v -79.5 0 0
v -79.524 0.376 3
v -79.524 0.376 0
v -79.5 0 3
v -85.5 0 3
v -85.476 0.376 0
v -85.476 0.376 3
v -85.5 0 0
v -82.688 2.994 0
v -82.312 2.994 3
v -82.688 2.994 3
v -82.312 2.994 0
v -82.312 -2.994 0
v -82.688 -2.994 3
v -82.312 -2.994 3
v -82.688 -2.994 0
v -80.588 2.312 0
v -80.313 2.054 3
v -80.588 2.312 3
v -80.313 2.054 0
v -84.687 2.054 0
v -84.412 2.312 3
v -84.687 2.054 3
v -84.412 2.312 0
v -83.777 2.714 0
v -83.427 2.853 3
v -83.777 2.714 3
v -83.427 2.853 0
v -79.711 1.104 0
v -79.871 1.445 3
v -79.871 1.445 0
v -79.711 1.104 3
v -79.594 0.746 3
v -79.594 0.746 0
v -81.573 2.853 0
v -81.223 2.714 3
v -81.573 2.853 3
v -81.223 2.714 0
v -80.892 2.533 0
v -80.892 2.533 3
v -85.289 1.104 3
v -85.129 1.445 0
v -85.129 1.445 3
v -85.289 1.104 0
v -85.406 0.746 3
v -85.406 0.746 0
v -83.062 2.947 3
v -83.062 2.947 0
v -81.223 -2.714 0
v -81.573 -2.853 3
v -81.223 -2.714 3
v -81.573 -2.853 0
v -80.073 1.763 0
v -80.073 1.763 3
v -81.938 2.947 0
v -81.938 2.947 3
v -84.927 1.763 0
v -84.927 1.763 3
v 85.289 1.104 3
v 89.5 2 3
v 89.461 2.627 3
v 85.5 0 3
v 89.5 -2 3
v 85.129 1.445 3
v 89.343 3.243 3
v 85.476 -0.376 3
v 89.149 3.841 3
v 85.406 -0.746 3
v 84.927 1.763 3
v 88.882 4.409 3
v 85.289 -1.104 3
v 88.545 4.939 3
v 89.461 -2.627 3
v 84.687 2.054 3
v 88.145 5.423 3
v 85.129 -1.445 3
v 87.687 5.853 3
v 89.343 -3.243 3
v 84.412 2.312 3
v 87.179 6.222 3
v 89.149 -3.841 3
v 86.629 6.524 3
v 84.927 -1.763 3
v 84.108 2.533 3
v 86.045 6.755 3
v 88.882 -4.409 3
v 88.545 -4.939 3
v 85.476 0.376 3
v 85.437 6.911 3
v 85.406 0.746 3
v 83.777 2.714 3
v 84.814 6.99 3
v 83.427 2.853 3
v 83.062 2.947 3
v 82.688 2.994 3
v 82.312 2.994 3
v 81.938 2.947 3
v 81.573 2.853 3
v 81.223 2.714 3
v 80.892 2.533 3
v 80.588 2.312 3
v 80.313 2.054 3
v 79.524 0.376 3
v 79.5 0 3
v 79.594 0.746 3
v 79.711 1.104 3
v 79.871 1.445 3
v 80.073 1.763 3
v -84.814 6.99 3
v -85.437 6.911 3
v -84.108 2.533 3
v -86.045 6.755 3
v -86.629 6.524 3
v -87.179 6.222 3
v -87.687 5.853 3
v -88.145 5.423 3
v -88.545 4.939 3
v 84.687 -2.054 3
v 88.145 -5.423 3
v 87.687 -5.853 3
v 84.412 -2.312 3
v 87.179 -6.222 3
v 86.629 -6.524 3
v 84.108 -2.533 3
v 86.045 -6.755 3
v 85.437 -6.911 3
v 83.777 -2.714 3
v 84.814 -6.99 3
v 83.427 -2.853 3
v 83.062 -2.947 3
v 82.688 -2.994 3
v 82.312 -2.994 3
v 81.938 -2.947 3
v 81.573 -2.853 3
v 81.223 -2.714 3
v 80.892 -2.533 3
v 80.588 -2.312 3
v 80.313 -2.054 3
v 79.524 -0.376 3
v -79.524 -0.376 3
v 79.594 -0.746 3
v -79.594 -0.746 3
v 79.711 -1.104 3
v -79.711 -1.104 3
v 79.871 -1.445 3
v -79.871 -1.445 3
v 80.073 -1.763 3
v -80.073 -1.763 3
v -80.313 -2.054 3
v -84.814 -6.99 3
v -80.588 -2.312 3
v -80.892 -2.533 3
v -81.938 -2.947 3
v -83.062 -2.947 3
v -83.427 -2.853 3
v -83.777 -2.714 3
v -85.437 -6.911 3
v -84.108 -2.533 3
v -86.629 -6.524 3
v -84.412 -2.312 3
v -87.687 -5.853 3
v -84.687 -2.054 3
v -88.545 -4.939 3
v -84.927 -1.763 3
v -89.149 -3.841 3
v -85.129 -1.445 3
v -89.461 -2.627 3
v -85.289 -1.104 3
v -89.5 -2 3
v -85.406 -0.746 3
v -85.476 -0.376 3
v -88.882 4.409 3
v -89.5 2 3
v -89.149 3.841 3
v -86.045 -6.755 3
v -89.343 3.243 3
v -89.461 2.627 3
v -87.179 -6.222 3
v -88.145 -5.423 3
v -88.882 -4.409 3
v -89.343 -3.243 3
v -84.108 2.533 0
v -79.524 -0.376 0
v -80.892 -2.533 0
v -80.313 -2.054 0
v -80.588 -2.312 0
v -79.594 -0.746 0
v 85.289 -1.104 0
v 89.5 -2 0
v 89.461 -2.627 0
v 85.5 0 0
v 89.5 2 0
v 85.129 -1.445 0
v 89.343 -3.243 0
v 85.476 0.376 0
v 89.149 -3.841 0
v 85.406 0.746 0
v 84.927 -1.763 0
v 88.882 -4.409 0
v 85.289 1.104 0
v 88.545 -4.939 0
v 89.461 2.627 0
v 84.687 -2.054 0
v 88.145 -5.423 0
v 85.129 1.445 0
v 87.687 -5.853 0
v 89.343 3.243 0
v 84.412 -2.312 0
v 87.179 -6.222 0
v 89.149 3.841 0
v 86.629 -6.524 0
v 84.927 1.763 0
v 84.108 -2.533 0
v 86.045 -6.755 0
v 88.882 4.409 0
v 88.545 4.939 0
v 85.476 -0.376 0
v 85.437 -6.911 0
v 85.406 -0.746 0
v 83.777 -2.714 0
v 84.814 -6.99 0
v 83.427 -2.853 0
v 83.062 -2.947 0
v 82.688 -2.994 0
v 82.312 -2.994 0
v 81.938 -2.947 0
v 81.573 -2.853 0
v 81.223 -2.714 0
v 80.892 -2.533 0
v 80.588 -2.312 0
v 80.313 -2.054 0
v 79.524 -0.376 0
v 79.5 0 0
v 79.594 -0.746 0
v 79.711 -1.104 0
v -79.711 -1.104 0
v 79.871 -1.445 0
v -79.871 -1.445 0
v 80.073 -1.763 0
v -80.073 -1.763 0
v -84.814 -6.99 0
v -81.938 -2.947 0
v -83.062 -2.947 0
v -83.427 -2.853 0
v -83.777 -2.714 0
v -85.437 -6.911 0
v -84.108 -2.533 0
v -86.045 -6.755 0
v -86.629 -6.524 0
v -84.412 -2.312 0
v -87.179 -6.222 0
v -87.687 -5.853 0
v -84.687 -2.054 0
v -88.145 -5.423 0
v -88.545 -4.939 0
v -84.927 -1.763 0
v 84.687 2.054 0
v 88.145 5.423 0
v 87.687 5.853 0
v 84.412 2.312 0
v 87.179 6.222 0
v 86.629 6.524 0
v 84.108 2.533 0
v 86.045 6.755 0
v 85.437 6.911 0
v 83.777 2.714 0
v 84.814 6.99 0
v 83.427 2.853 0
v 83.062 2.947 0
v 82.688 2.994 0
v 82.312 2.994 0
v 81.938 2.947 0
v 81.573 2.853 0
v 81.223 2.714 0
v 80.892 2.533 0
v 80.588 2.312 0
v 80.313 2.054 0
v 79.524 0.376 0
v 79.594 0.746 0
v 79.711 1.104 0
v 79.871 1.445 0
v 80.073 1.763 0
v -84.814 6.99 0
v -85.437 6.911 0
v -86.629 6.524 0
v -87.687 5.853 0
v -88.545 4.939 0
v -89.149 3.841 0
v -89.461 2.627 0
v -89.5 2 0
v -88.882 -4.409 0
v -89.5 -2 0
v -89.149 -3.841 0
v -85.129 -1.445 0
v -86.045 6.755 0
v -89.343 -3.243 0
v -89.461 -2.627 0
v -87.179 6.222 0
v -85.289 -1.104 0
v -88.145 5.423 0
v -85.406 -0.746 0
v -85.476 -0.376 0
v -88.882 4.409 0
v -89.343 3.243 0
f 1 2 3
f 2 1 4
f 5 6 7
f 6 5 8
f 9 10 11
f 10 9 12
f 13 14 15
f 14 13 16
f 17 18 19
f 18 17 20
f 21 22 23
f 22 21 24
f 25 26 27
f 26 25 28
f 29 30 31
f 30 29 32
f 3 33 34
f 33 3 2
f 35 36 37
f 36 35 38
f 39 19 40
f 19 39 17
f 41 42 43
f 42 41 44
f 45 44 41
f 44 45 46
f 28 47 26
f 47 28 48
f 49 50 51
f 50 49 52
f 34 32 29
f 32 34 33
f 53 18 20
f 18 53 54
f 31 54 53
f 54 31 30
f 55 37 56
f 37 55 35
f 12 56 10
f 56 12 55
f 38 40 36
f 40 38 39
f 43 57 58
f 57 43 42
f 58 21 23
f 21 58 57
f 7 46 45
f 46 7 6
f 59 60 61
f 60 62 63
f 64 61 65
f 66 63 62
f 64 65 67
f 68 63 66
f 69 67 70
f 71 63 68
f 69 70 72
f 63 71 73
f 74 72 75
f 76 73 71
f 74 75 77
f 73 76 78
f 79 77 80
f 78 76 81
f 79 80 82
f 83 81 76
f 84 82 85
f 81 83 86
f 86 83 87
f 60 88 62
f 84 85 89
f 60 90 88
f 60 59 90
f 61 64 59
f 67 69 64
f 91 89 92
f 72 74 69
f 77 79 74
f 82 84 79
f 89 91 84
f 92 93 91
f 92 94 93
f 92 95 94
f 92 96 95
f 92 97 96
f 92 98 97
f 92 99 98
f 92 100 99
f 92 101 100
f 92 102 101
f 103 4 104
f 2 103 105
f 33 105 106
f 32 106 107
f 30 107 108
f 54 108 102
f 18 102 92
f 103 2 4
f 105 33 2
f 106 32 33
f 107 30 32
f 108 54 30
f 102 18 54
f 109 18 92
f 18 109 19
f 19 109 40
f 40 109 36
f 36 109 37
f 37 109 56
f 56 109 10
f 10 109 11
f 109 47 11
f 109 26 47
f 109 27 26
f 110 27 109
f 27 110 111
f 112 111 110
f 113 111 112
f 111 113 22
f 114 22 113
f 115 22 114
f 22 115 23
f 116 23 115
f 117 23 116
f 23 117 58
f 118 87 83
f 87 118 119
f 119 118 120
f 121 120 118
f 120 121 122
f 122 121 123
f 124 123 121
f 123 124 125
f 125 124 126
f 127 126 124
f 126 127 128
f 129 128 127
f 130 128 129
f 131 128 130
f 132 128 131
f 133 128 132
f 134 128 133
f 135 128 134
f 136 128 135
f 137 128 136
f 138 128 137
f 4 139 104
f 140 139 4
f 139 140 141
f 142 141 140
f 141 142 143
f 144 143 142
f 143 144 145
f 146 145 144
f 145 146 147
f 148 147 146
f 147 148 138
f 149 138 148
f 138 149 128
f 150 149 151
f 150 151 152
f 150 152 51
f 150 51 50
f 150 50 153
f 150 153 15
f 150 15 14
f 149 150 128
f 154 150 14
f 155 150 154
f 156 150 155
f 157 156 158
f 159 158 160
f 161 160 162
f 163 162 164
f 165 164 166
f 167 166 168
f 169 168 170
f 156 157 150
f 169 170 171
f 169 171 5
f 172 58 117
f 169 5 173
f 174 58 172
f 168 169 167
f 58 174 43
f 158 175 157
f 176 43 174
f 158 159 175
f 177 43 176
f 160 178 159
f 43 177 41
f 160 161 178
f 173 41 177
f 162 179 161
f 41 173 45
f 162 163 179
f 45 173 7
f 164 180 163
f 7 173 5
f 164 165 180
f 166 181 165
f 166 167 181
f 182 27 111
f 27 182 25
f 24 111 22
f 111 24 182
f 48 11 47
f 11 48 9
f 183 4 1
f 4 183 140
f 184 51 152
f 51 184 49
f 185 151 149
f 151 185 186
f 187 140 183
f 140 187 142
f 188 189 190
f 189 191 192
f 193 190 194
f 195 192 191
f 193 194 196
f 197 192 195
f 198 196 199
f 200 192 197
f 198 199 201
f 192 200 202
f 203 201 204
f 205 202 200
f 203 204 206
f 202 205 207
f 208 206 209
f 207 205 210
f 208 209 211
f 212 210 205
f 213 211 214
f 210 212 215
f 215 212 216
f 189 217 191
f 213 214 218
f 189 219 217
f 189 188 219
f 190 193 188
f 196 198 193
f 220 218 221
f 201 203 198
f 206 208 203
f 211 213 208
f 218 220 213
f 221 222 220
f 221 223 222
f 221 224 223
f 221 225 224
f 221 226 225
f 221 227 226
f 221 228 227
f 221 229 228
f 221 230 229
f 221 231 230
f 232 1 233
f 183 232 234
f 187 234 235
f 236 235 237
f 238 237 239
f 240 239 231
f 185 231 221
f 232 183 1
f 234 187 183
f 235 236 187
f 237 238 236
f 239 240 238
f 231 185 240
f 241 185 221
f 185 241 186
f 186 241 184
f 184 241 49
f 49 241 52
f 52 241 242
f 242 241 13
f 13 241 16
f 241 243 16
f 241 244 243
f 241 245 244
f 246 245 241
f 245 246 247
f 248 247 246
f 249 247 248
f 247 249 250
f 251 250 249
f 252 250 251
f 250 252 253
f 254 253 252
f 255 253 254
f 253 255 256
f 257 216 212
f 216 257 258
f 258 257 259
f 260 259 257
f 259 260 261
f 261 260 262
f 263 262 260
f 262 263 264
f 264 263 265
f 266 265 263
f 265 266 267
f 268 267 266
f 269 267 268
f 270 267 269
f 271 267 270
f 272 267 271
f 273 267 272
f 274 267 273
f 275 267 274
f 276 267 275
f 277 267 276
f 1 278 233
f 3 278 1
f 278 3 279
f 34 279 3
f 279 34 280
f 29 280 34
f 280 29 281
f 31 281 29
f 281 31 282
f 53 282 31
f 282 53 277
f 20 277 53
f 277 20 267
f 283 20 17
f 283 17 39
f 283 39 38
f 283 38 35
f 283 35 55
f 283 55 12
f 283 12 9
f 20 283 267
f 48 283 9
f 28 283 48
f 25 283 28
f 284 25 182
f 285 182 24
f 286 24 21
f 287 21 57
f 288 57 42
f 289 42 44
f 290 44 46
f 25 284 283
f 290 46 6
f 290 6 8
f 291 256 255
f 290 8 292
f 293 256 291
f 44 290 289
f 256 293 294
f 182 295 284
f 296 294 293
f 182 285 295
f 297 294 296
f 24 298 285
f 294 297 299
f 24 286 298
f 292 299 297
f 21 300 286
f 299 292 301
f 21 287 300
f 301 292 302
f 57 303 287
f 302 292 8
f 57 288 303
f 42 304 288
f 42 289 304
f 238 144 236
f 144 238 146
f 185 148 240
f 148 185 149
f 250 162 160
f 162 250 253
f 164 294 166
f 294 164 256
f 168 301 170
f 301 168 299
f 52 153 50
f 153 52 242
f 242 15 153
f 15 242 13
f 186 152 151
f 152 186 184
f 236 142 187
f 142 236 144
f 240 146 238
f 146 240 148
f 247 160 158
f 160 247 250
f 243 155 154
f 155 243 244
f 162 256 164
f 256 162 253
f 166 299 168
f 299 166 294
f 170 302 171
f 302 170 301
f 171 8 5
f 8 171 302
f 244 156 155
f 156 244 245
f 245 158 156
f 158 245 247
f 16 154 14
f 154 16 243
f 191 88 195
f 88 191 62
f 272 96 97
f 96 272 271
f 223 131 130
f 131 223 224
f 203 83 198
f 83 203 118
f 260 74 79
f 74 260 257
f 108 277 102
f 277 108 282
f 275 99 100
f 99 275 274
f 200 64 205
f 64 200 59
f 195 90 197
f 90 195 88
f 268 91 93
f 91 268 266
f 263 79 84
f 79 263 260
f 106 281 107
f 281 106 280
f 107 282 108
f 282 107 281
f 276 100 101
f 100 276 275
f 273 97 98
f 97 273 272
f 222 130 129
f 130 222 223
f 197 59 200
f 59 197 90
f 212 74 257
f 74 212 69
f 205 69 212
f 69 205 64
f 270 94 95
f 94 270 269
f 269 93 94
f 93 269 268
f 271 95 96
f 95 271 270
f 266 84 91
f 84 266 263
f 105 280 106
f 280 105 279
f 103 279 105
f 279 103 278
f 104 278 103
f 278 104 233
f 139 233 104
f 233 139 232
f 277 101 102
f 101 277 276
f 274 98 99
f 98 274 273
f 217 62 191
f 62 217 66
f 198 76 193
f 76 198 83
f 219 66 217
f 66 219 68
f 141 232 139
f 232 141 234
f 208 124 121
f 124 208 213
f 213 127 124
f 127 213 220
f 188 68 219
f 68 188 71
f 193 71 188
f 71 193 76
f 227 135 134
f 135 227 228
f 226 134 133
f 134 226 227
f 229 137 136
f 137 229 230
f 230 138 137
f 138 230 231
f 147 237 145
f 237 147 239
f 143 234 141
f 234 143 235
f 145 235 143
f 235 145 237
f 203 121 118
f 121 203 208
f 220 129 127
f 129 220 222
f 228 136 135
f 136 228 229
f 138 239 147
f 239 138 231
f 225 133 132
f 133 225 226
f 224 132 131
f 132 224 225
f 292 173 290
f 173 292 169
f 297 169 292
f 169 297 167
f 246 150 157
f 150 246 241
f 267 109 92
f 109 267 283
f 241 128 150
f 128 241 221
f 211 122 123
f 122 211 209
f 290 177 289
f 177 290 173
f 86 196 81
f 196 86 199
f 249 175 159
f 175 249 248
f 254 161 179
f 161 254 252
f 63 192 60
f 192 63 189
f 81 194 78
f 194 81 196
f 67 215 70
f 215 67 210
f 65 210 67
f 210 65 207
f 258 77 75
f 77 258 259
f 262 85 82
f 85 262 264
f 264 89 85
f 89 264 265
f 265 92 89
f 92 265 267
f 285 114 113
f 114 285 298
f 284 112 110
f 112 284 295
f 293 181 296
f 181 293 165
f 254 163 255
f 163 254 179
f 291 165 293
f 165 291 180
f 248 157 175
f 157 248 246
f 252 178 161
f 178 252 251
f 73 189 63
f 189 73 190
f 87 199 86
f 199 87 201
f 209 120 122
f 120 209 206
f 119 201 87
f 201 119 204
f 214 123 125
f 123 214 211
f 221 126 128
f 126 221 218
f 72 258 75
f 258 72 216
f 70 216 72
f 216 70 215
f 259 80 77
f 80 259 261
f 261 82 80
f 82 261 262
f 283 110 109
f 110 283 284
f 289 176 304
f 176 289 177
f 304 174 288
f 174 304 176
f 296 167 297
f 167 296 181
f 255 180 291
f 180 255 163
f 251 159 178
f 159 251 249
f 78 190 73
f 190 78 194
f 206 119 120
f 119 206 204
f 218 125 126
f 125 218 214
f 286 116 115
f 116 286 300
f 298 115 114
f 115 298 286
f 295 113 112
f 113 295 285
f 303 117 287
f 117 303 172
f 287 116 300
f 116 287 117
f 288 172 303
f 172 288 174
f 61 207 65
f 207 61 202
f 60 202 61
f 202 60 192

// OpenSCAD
$fn = 50;


difference() {
	union() {
		hull() {
			translate(v = [-84.5000000000, 2.0000000000, 0]) {
				cylinder(h = 3, r = 5);
			}
			translate(v = [84.5000000000, 2.0000000000, 0]) {
				cylinder(h = 3, r = 5);
			}
			translate(v = [-84.5000000000, -2.0000000000, 0]) {
				cylinder(h = 3, r = 5);
			}
			translate(v = [84.5000000000, -2.0000000000, 0]) {
				cylinder(h = 3, r = 5);
			}
		}
	}
	union() {
		translate(v = [-82.5000000000, 0.0000000000, 0]) {
			cylinder(h = 3, r = 3.0000000000);
		}
		translate(v = [82.5000000000, 0.0000000000, 0]) {
			cylinder(h = 3, r = 3.0000000000);
		}
		translate(v = [-82.5000000000, 0.0000000000, 0]) {
			cylinder(h = 3, r = 1.5000000000);
		}
		translate(v = [82.5000000000, 0.0000000000, 0]) {
			cylinder(h = 3, r = 1.5000000000);
		}
		translate(v = [-82.5000000000, 0.0000000000, 0]) {
			cylinder(h = 3, r = 1.5000000000);
		}
		translate(v = [82.5000000000, 0.0000000000, 0]) {
			cylinder(h = 3, r = 1.5000000000);
		}
		translate(v = [-82.5000000000, 0.0000000000, 0]) {
			cylinder(h = 3, r = 1.5000000000);
		}
		translate(v = [82.5000000000, 0.0000000000, 0]) {
			cylinder(h = 3, r = 1.5000000000);
		}
	}
}
